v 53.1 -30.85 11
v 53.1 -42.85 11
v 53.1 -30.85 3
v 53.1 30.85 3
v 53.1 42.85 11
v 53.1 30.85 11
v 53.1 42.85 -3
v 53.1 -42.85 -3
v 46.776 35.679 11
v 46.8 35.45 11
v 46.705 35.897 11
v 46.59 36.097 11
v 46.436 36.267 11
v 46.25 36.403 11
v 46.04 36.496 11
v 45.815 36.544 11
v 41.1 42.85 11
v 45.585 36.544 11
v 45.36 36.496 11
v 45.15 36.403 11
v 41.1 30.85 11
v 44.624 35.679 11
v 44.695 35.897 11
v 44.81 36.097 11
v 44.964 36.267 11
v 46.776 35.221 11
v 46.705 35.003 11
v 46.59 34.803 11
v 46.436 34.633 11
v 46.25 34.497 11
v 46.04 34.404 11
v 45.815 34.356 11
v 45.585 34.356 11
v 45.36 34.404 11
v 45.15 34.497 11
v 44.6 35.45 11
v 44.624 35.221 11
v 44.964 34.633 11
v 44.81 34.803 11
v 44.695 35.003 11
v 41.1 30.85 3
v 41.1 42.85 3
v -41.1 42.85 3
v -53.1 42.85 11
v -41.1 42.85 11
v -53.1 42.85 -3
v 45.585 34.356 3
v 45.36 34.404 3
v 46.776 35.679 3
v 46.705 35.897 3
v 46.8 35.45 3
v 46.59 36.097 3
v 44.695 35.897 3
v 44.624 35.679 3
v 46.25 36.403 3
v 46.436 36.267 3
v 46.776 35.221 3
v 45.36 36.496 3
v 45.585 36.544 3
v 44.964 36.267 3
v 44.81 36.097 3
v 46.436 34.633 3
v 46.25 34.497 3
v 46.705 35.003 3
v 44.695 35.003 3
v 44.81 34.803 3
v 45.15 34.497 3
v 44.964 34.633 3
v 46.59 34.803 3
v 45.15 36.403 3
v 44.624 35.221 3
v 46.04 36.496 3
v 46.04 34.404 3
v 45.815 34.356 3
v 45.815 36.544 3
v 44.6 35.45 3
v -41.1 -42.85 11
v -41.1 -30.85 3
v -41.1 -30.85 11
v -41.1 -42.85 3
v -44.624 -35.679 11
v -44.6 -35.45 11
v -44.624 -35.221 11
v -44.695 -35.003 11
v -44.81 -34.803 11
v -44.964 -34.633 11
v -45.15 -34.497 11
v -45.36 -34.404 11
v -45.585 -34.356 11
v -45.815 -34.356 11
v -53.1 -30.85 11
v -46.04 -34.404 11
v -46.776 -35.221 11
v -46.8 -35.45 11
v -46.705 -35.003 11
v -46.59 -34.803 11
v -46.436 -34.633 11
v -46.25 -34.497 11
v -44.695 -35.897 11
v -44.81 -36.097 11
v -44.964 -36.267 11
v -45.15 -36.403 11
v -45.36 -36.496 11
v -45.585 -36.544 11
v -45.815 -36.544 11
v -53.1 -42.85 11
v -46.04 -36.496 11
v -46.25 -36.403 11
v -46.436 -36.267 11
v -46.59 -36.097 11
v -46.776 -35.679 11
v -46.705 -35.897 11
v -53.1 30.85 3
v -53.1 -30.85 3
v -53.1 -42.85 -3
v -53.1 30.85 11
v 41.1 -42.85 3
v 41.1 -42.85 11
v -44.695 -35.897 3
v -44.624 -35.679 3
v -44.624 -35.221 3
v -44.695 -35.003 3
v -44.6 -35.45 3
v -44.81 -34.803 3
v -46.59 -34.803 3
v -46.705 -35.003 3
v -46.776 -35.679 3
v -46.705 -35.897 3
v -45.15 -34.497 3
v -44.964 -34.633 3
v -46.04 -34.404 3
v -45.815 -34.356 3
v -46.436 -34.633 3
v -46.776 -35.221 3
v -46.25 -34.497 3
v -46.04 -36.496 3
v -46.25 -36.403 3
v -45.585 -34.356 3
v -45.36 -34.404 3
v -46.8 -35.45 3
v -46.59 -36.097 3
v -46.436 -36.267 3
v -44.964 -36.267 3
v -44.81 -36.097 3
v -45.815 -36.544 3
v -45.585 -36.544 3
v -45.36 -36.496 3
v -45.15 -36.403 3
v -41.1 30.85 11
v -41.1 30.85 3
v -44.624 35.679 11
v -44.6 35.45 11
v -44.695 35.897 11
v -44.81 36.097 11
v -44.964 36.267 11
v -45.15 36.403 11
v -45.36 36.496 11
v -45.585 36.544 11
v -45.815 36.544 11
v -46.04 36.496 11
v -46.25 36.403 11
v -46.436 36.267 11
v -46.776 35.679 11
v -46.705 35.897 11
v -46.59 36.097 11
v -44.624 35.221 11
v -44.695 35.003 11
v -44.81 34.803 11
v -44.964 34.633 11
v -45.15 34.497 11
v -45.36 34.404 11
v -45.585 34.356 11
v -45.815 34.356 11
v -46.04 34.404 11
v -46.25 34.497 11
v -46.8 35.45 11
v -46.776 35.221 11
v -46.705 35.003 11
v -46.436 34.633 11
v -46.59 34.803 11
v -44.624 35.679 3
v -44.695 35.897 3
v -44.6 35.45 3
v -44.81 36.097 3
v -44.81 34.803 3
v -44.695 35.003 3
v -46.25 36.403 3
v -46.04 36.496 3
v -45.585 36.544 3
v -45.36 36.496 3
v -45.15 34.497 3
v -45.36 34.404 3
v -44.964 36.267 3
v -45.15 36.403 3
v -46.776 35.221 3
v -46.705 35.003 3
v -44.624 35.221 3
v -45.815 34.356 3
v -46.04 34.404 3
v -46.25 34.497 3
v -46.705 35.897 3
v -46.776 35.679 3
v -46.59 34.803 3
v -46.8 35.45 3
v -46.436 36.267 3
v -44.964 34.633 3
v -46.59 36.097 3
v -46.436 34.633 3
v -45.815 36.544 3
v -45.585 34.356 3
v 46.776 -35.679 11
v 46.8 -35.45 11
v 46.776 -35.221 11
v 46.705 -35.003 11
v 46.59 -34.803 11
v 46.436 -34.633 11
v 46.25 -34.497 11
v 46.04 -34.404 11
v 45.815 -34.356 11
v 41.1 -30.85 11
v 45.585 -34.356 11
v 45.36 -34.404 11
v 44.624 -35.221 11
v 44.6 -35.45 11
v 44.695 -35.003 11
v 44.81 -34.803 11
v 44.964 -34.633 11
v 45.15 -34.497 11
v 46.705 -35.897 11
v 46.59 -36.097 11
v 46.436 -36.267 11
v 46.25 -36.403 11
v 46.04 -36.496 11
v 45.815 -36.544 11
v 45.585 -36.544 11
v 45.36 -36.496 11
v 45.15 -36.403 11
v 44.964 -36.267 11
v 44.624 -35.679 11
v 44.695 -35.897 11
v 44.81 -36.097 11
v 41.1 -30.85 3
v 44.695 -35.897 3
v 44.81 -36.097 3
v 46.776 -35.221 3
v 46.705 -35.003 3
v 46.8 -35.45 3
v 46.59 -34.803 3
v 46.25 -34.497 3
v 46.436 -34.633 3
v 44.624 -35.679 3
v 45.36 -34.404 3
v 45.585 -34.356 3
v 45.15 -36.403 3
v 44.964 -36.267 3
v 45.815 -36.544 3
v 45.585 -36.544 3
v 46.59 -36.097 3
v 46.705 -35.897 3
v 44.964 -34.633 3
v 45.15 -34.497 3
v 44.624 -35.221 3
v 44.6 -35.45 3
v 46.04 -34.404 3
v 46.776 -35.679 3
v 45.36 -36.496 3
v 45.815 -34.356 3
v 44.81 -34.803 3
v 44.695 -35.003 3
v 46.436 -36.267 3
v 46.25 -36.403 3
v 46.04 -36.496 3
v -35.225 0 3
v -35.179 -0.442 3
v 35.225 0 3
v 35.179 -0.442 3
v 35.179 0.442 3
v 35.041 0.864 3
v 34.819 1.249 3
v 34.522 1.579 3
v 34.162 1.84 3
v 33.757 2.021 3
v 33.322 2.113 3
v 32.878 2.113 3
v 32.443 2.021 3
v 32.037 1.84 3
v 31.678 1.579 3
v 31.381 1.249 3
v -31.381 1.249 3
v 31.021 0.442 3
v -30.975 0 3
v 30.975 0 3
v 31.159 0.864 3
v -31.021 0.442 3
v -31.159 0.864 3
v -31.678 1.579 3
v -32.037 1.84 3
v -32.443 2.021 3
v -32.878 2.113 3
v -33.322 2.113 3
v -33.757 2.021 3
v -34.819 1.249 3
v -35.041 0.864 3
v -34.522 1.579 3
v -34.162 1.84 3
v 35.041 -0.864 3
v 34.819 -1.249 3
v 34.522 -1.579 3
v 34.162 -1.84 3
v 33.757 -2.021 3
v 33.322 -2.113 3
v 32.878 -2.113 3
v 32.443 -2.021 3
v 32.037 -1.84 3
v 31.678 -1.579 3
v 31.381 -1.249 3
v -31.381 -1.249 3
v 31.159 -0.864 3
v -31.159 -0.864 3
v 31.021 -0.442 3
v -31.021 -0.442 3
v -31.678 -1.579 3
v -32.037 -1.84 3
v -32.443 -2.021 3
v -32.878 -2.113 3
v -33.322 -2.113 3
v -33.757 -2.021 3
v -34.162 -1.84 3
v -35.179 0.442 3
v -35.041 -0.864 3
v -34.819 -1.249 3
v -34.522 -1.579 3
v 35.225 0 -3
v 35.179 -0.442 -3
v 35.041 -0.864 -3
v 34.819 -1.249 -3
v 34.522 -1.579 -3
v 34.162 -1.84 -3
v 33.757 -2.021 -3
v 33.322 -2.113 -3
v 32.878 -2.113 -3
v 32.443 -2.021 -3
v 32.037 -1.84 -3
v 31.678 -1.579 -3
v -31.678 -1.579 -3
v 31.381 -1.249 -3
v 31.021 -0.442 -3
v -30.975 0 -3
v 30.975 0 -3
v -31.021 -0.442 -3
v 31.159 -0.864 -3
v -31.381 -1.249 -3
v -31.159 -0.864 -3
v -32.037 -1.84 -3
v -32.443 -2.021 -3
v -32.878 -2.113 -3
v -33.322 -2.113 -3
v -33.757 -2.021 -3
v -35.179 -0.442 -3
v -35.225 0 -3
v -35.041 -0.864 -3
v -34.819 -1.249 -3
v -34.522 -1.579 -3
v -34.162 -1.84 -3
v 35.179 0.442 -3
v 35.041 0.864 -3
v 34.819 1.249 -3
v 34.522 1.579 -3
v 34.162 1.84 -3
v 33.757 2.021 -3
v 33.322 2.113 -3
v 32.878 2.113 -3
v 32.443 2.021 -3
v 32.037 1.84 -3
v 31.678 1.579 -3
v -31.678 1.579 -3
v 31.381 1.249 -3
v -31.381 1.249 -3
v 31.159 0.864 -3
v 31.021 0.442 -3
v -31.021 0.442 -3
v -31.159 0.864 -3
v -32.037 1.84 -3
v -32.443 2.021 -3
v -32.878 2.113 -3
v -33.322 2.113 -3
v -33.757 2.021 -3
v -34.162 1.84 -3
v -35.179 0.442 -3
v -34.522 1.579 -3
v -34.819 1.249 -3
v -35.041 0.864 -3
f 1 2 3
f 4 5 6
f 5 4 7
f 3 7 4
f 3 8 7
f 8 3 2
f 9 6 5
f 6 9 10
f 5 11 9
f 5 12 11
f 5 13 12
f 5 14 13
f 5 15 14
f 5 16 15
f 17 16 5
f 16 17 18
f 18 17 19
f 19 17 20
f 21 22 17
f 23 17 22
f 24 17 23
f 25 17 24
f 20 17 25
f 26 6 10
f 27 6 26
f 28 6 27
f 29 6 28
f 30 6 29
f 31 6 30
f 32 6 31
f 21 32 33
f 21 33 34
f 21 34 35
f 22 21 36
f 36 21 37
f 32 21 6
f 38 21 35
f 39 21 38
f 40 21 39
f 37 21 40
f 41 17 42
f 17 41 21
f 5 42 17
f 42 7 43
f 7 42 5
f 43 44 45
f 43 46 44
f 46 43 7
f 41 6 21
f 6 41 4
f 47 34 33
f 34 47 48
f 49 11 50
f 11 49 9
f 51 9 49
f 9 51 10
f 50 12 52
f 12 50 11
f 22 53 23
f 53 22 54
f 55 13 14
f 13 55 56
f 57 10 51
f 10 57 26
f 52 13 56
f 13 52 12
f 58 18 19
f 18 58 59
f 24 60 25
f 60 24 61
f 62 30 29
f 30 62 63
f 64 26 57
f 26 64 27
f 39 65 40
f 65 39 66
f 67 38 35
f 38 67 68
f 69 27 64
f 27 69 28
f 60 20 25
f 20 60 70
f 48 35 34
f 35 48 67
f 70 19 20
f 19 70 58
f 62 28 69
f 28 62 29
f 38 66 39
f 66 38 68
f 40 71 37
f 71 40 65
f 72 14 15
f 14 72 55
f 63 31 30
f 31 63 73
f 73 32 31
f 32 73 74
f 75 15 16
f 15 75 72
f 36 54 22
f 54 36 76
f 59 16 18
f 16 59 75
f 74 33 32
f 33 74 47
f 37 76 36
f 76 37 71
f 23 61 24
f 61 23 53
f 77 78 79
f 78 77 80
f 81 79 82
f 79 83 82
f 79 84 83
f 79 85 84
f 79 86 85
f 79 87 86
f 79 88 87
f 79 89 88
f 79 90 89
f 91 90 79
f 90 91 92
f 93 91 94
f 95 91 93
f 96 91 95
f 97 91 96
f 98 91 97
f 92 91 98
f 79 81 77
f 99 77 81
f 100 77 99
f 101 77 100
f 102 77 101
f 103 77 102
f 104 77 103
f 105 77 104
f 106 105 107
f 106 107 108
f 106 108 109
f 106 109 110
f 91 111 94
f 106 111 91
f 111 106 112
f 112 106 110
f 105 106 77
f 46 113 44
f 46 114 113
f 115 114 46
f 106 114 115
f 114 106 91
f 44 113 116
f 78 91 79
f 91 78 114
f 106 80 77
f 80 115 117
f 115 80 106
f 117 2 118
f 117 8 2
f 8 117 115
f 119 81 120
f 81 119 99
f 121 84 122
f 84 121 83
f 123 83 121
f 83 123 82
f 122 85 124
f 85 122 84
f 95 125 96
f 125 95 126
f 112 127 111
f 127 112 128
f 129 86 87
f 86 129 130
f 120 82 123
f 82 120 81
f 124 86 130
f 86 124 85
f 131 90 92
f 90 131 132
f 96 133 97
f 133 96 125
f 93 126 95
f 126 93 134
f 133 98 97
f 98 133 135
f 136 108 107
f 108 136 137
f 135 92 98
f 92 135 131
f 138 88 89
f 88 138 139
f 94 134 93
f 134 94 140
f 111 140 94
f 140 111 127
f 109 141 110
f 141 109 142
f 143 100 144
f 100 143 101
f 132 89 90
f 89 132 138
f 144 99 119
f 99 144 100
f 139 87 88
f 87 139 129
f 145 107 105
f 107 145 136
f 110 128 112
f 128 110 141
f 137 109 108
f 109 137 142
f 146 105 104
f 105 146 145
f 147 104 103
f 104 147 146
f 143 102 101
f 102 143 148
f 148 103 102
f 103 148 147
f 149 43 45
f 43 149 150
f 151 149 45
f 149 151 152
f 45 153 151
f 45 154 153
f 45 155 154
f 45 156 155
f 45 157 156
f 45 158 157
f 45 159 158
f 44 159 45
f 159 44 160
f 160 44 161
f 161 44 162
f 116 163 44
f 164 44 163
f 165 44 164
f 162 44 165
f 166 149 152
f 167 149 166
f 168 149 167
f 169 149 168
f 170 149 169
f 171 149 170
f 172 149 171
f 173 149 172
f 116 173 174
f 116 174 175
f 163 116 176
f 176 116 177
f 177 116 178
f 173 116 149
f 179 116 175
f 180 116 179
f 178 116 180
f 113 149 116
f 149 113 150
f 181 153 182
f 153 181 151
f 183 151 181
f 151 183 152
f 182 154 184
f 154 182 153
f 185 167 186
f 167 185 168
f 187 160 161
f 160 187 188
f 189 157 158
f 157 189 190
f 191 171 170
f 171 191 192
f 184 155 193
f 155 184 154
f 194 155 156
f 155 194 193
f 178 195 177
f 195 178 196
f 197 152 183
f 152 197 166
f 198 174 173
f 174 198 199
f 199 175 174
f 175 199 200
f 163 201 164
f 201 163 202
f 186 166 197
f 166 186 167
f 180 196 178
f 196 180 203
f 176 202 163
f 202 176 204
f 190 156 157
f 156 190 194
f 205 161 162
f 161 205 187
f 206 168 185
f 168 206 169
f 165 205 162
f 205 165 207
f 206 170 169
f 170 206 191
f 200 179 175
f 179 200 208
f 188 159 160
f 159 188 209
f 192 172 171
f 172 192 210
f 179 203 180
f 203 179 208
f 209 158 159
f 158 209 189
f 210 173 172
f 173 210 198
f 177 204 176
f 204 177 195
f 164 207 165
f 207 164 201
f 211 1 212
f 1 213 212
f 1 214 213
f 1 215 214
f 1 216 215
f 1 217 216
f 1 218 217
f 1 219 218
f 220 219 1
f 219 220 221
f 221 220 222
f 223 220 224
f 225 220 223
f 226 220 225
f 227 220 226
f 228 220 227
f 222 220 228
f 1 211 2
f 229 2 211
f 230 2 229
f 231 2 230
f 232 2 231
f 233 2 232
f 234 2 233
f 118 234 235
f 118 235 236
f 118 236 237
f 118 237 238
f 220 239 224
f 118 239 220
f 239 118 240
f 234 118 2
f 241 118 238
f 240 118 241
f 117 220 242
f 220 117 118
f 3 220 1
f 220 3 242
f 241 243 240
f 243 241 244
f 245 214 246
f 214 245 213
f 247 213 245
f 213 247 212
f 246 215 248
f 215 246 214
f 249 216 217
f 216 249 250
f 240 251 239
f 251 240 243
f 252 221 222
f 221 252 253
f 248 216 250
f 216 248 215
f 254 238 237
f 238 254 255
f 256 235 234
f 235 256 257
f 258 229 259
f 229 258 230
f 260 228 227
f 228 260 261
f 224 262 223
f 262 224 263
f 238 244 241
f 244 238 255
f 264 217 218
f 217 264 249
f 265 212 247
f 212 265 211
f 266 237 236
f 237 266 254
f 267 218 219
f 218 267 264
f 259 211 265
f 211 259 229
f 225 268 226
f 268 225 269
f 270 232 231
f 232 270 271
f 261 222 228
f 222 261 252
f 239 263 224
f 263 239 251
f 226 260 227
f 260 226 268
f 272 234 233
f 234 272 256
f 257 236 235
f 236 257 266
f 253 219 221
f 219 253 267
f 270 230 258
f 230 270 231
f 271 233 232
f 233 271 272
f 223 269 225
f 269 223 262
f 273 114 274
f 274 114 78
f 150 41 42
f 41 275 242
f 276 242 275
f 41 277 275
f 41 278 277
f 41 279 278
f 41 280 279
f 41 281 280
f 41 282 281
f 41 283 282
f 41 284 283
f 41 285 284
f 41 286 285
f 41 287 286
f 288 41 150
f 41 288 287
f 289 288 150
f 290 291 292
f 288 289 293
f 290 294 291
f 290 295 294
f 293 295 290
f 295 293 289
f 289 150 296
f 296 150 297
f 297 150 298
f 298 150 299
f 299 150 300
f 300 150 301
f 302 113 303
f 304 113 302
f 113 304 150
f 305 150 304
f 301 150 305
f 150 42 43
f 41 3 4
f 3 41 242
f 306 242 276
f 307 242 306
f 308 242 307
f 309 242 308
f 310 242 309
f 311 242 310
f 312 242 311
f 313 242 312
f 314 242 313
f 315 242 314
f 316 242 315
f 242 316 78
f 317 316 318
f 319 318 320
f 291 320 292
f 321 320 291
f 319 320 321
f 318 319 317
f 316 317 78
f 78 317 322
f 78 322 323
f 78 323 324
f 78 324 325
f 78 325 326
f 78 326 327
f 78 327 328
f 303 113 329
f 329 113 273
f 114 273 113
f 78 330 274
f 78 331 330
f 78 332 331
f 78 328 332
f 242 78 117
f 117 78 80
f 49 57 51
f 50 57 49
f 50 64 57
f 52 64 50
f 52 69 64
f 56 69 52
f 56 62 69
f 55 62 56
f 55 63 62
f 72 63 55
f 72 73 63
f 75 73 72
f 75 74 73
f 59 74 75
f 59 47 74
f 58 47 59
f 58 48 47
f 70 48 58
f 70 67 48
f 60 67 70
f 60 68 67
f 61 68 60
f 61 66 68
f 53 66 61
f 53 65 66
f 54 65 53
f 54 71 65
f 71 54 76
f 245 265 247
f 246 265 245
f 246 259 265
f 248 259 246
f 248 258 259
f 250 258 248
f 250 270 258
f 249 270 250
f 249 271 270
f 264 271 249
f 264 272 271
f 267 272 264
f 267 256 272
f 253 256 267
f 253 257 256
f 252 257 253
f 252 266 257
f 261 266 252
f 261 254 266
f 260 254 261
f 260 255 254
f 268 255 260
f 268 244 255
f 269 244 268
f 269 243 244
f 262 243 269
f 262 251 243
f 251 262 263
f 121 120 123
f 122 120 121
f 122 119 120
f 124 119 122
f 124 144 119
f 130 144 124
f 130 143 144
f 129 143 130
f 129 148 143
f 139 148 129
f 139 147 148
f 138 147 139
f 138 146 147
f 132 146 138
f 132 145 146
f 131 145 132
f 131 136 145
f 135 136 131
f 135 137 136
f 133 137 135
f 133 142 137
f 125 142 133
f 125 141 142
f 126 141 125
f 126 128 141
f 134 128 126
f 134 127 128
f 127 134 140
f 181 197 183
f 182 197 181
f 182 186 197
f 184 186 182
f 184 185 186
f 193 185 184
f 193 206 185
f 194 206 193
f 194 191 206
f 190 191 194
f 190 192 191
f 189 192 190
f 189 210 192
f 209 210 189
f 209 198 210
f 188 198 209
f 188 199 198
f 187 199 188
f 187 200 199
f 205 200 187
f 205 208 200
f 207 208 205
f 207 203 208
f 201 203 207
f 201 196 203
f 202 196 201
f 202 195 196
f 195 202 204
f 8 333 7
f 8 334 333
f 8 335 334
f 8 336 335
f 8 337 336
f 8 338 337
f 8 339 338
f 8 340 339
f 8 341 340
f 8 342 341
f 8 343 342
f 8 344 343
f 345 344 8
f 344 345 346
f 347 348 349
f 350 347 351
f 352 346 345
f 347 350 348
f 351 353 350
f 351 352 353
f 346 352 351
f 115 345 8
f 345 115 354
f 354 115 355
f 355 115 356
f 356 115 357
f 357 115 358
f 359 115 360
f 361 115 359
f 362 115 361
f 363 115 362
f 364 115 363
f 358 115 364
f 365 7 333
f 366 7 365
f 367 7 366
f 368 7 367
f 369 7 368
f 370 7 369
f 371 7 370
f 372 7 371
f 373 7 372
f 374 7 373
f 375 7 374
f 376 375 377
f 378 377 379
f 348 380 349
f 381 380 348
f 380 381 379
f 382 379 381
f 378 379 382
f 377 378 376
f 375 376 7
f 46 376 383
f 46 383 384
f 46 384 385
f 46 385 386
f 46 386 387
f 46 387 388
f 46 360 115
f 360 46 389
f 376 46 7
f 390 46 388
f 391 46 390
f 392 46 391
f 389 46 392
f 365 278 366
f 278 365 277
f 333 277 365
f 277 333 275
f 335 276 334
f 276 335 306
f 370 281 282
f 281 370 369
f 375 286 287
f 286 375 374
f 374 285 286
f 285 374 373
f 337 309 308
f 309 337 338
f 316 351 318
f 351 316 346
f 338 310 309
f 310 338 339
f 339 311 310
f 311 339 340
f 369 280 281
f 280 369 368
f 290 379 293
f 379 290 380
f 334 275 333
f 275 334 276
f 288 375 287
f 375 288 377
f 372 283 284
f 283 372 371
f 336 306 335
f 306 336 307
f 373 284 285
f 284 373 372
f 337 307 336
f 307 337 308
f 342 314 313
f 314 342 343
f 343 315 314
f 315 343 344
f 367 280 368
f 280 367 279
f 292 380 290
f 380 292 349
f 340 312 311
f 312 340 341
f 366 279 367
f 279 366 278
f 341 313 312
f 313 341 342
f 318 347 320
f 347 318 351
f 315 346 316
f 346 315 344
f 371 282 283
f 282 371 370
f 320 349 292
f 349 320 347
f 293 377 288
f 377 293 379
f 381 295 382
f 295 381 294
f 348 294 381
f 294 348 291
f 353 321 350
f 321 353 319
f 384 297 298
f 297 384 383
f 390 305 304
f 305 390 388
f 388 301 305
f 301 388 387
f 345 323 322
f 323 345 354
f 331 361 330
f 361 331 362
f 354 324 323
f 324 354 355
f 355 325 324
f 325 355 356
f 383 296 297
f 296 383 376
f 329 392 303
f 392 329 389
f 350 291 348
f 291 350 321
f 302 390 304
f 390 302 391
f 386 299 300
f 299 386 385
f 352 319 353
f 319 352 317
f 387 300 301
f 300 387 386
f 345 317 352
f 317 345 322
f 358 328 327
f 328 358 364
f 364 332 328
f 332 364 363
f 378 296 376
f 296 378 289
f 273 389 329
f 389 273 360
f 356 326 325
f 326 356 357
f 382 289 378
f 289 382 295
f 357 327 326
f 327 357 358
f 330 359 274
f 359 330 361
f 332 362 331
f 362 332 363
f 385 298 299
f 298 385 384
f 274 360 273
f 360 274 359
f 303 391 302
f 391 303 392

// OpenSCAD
pod_h = 6;
pod_x = 106.2;
pod_y = 85.7;

sruba_sr = 2.2;
wkret_off_x = 6.2;
wkret_off_y = 6.2;

wkret_sr = 4.25;
marg = 20;


podpora_h = 10;
podpora_x = 12;

module podpora(){
    cube([podpora_x,podpora_x,podpora_h],center=true);
}

module wkret(sr){
    cylinder(h = 50, d = sr, center=true,$fn=30);
}

difference(){
union(){
    cube([pod_x,pod_y,pod_h], center=true);
    
    difference(){
    translate([pod_x/2-podpora_x/2,pod_y/2-podpora_x/2,pod_h]){
        podpora();
    }
    translate([pod_x/2-wkret_off_x-1.2,pod_y/2-wkret_off_y-1.2,pod_h]){
        wkret(sruba_sr);
    }
}
    difference(){
    translate([-(pod_x/2-podpora_x/2),-(pod_y/2-podpora_x/2),pod_h]){
        podpora();
    }
        translate([-(pod_x/2-wkret_off_x-1.2),-(pod_y/2-wkret_off_y-1.2),pod_h]){
        wkret(sruba_sr);
    }
}
    difference(){
    translate([-(pod_x/2-podpora_x/2),pod_y/2-podpora_x/2,pod_h]){
        podpora();
    }
        translate([-(pod_x/2-wkret_off_x-1.2),pod_y/2-wkret_off_y-1.2,pod_h]){
        wkret(sruba_sr);
    }
}
    difference(){
    translate([pod_x/2-podpora_x/2,-(pod_y/2-podpora_x/2),pod_h]){
        podpora();
    }
        translate([pod_x/2-wkret_off_x-1.2,-(pod_y/2-wkret_off_y-1.2),pod_h]){
        wkret(sruba_sr);
    }
}
}
    translate([pod_x/2-marg,0,0]){
        wkret(wkret_sr);
    }
    
    translate([-pod_x/2+marg,0,0]){
        wkret(wkret_sr);
    }
}
